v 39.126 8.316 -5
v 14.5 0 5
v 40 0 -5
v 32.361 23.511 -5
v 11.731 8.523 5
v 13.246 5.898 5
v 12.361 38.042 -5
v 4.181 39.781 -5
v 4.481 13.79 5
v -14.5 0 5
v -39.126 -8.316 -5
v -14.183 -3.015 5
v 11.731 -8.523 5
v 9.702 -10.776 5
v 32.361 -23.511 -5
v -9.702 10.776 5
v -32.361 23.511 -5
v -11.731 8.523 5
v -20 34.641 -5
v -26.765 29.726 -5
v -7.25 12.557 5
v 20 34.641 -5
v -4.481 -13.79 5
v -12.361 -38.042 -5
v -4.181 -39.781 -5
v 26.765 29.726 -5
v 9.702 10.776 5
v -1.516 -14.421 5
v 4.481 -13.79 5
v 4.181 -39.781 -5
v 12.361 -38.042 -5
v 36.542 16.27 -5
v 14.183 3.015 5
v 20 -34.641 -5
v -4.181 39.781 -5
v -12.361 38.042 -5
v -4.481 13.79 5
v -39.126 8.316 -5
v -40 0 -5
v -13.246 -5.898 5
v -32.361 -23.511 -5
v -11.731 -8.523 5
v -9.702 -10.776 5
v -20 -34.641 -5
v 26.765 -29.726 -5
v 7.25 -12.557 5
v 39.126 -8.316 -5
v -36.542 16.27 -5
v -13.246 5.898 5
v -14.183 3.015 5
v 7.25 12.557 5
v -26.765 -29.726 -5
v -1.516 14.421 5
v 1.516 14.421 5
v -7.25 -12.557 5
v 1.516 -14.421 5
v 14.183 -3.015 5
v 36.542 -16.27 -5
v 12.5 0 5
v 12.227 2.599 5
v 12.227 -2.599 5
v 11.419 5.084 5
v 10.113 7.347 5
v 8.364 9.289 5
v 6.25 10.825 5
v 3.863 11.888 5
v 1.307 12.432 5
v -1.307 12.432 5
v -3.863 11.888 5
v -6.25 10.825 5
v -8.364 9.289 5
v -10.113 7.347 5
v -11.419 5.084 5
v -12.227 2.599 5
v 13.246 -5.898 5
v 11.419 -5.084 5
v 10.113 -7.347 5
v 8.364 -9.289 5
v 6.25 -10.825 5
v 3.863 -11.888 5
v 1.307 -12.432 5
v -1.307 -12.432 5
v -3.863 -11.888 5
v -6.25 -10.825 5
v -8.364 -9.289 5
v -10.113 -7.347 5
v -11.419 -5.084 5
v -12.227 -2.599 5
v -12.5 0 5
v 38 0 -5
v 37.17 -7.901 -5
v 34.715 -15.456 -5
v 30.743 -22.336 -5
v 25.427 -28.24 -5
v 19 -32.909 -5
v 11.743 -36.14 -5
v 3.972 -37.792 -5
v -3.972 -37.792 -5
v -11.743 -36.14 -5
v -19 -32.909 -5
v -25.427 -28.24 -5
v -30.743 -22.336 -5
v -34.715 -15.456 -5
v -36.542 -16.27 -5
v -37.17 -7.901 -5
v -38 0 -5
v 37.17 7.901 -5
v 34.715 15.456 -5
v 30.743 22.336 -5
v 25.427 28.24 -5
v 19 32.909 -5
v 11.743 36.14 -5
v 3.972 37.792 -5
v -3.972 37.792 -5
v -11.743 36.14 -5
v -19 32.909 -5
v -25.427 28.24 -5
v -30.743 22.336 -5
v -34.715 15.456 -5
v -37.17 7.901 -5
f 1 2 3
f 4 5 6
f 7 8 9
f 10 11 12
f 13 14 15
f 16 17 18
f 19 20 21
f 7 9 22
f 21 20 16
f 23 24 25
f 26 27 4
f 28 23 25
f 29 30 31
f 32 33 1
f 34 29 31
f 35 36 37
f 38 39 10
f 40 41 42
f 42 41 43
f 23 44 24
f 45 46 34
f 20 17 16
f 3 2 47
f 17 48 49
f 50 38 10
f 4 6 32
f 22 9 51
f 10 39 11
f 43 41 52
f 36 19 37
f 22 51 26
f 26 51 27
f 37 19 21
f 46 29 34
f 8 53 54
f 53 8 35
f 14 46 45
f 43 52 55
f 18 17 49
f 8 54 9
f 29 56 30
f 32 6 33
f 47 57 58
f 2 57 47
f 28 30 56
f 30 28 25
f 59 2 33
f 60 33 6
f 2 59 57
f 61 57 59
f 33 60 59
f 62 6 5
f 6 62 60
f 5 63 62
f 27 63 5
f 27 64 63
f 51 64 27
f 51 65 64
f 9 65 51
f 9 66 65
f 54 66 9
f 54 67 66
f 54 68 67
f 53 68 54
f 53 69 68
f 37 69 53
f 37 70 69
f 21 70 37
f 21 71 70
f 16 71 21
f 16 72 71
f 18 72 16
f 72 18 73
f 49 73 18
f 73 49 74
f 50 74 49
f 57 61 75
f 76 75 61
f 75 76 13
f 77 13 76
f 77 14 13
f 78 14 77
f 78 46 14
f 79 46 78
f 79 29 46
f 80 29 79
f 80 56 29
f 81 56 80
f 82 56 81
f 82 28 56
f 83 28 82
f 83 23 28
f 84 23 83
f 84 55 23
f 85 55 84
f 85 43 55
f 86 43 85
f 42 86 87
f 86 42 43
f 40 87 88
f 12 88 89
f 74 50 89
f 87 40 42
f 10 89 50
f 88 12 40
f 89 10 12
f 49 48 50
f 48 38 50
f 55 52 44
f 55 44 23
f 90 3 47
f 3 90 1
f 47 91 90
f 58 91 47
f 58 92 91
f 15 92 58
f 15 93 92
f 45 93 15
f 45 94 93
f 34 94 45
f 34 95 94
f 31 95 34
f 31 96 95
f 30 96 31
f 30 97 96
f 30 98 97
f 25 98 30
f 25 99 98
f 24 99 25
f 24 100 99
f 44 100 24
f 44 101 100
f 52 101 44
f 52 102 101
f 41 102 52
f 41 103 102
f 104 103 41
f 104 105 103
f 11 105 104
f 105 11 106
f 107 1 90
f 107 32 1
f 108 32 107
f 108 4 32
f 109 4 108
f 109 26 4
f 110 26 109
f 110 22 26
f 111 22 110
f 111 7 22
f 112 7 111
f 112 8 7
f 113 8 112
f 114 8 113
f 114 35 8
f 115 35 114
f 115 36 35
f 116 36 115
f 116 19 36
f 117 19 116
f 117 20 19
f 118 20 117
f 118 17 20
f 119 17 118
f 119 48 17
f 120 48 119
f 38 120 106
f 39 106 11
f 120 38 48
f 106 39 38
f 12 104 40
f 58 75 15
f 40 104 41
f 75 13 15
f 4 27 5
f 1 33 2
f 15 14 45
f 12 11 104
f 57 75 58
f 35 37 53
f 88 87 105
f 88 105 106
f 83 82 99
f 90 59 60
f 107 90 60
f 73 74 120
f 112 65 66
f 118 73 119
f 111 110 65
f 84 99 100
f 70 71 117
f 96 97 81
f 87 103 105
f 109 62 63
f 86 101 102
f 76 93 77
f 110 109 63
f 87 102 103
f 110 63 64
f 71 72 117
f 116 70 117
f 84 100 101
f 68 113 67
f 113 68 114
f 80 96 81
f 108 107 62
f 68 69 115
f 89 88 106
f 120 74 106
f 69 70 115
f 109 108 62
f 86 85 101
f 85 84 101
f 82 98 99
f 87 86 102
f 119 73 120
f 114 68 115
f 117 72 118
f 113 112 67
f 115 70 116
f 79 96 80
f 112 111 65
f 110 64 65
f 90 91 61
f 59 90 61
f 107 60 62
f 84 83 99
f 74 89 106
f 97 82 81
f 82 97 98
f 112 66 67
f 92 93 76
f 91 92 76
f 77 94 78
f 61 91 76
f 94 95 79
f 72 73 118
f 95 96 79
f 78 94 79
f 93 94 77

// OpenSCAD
// 穴: 直径25mm
hole_r = 12.5;
// 外側: 直径80mm
outer_r = 40;
// 厚さ: 2mm
thickness = 2;
// 高さ: 10mm
height = 10;


module model()
{
    film();
}

module film()
{
    difference() {
        cylinder(h = height, r1 = outer_r, r2 = hole_r + thickness, center = true);
        cylinder(h = height, r1 = outer_r - thickness, r2 = hole_r, center = true);
    }
}

model();
